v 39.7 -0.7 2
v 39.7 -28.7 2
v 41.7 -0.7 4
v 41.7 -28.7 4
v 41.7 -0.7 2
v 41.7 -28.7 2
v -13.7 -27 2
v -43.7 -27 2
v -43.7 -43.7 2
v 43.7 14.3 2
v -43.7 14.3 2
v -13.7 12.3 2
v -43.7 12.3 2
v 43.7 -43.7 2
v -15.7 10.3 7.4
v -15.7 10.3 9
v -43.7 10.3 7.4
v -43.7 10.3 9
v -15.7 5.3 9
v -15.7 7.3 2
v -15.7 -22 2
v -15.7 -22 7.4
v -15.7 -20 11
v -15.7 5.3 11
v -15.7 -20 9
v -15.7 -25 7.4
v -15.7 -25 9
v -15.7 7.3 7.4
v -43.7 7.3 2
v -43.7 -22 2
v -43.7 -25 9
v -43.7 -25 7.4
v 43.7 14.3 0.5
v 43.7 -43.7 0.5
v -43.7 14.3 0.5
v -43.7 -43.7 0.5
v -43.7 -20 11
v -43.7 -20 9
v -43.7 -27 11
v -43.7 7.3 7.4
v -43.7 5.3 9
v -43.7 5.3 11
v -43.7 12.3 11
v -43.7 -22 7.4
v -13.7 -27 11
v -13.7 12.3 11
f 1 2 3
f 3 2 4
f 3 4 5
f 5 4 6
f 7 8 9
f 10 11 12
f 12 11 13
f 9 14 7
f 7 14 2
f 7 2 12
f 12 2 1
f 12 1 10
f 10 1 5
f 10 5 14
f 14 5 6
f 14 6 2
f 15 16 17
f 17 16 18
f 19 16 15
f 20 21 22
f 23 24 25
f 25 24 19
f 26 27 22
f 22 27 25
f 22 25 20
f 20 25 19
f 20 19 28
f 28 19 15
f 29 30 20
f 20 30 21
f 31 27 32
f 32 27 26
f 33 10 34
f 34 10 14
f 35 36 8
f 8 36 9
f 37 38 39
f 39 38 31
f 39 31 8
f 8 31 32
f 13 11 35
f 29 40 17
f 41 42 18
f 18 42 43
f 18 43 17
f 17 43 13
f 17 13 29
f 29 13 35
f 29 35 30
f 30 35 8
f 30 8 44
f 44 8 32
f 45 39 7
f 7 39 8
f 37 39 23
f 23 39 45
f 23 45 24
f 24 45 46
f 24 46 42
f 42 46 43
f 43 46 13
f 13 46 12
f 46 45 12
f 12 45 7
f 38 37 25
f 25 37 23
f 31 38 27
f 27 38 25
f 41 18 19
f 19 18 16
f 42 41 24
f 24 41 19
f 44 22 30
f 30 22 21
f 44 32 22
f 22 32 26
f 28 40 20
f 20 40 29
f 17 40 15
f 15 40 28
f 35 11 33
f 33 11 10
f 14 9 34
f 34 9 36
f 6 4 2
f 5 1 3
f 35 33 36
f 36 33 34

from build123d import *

# Parameters (mm, degrees)
SKETCH_1_W          = 87.4
SKETCH_1_H          = 58
EXTRUDE_1_DEPTH     = 2
EXTRUDE_2_DEPTH     = 9
SKETCH_3_W          = 2
SKETCH_3_H          = 5
EXTRUDE_3_DEPTH     = 28
SKETCH_4_W          = 28
SKETCH_4_H          = 3
EXTRUDE_4_DEPTH     = 5.4
EXTRUDE_7_DEPTH     = 58
SKETCH_6_W          = 14.323261058
SKETCH_6_H          = 15
CUT_EXTRUDE_2_DEPTH = 58
SKETCH_8_W          = 87.4
SKETCH_8_H          = 14.7
CUT_EXTRUDE_3_DEPTH = 35
SKETCH_9_W          = 87.4
SKETCH_9_H          = 58
EXTRUDE_8_DEPTH     = 2
EXTRUDE_9_DEPTH     = 29
SKETCH_11_W         = 8.812157776
SKETCH_11_H         = 15
CUT_EXTRUDE_4_DEPTH = 13
SKETCH_13_W         = 87.4
SKETCH_13_H         = 0.5
CUT_EXTRUDE_6_DEPTH = 200


with BuildPart() as part:
    # 草图1 → 凸台-拉伸1 (new body)
    with BuildSketch(Plane.XY):
        Rectangle(SKETCH_1_W, SKETCH_1_H)
    extrude(amount=EXTRUDE_1_DEPTH)

    # 草图2 → 凸台-拉伸2 (add)
    with BuildSketch(Plane.XY.offset(2)):
        Polygon((-43.7, -25), (-43.7, -27), (-13.7, -27), (-13.7, 12.3), (-43.7, 12.3), (-43.7, 10.3), (-15.7, 10.3), (-15.7, -25), align=None)
    extrude(amount=EXTRUDE_2_DEPTH)

    # 草图3 → 凸台-拉伸3 (add)
    with BuildSketch(Plane.ZY.offset(15.7)):
        with Locations((10, 7.8)):
            Rectangle(SKETCH_3_W, SKETCH_3_H)
        with Locations((10, -22.5)):
            Rectangle(SKETCH_3_W, SKETCH_3_H)
    extrude(amount=EXTRUDE_3_DEPTH)

    # 草图4 → 凸台-拉伸4 (add)
    with BuildSketch(Plane.XY.offset(2)):
        with Locations((-29.7, 8.8)):
            Rectangle(SKETCH_4_W, SKETCH_4_H)
        with Locations((-29.7, -23.5)):
            Rectangle(SKETCH_4_W, SKETCH_4_H)
    extrude(amount=EXTRUDE_4_DEPTH)

    # 草图5 → 凸台-拉伸7 (add)
    with BuildSketch(Plane.XZ.offset(29)):
        Polygon((39.7, 2), (41.7, 4), (41.7, 2), align=None)
    extrude(amount=-EXTRUDE_7_DEPTH)

    # 草图6 → 切除-拉伸2 (cut)
    with BuildSketch(Plane.XY.offset(2)):
        with Locations((36.538369471, -21.5)):
            Rectangle(SKETCH_6_W, SKETCH_6_H)
        with Locations((36.538369471, 21.5)):
            Rectangle(SKETCH_6_W, SKETCH_6_H)
    extrude(amount=CUT_EXTRUDE_2_DEPTH, mode=Mode.SUBTRACT)

    # 草图8 → 切除-拉伸3 (cut)
    with BuildSketch(Plane.XY.offset(2)):
        with Locations((0, 21.65)):
            Rectangle(SKETCH_8_W, SKETCH_8_H)
    extrude(amount=-CUT_EXTRUDE_3_DEPTH, mode=Mode.SUBTRACT)

    # 草图9 → 凸台-拉伸8 (add)
    with BuildSketch(Plane(origin=(0, 0, 0), x_dir=(-1, 0, 0), z_dir=(0, 0, -1))):
        with Locations((0, -14.7)):
            Rectangle(SKETCH_9_W, SKETCH_9_H)
    extrude(amount=-EXTRUDE_8_DEPTH)

    # 草图10 → 凸台-拉伸9 (add)
    with BuildSketch(Plane.XZ.offset(14)):
        Polygon((41.7, 4), (41.7, 2), (39.7, 2), align=None)
    extrude(amount=EXTRUDE_9_DEPTH)

    # 草图11 → 切除-拉伸4 (cut)
    with BuildSketch(Plane.XY.offset(2)):
        with Locations((39.293921112, 6.8)):
            Rectangle(SKETCH_11_W, SKETCH_11_H)
        with Locations((39.293921112, -36.2)):
            Rectangle(SKETCH_11_W, SKETCH_11_H)
    extrude(amount=CUT_EXTRUDE_4_DEPTH, mode=Mode.SUBTRACT)

    # 草图13 → 切除-拉伸6 (cut)
    with BuildSketch(Plane(origin=(0, 14.3, 0), x_dir=(1, 0, 0), z_dir=(0, 1, 0))):
        with Locations((0, -0.25)):
            Rectangle(SKETCH_13_W, SKETCH_13_H)
    extrude(amount=-CUT_EXTRUDE_6_DEPTH, mode=Mode.SUBTRACT)


solid = part.part
